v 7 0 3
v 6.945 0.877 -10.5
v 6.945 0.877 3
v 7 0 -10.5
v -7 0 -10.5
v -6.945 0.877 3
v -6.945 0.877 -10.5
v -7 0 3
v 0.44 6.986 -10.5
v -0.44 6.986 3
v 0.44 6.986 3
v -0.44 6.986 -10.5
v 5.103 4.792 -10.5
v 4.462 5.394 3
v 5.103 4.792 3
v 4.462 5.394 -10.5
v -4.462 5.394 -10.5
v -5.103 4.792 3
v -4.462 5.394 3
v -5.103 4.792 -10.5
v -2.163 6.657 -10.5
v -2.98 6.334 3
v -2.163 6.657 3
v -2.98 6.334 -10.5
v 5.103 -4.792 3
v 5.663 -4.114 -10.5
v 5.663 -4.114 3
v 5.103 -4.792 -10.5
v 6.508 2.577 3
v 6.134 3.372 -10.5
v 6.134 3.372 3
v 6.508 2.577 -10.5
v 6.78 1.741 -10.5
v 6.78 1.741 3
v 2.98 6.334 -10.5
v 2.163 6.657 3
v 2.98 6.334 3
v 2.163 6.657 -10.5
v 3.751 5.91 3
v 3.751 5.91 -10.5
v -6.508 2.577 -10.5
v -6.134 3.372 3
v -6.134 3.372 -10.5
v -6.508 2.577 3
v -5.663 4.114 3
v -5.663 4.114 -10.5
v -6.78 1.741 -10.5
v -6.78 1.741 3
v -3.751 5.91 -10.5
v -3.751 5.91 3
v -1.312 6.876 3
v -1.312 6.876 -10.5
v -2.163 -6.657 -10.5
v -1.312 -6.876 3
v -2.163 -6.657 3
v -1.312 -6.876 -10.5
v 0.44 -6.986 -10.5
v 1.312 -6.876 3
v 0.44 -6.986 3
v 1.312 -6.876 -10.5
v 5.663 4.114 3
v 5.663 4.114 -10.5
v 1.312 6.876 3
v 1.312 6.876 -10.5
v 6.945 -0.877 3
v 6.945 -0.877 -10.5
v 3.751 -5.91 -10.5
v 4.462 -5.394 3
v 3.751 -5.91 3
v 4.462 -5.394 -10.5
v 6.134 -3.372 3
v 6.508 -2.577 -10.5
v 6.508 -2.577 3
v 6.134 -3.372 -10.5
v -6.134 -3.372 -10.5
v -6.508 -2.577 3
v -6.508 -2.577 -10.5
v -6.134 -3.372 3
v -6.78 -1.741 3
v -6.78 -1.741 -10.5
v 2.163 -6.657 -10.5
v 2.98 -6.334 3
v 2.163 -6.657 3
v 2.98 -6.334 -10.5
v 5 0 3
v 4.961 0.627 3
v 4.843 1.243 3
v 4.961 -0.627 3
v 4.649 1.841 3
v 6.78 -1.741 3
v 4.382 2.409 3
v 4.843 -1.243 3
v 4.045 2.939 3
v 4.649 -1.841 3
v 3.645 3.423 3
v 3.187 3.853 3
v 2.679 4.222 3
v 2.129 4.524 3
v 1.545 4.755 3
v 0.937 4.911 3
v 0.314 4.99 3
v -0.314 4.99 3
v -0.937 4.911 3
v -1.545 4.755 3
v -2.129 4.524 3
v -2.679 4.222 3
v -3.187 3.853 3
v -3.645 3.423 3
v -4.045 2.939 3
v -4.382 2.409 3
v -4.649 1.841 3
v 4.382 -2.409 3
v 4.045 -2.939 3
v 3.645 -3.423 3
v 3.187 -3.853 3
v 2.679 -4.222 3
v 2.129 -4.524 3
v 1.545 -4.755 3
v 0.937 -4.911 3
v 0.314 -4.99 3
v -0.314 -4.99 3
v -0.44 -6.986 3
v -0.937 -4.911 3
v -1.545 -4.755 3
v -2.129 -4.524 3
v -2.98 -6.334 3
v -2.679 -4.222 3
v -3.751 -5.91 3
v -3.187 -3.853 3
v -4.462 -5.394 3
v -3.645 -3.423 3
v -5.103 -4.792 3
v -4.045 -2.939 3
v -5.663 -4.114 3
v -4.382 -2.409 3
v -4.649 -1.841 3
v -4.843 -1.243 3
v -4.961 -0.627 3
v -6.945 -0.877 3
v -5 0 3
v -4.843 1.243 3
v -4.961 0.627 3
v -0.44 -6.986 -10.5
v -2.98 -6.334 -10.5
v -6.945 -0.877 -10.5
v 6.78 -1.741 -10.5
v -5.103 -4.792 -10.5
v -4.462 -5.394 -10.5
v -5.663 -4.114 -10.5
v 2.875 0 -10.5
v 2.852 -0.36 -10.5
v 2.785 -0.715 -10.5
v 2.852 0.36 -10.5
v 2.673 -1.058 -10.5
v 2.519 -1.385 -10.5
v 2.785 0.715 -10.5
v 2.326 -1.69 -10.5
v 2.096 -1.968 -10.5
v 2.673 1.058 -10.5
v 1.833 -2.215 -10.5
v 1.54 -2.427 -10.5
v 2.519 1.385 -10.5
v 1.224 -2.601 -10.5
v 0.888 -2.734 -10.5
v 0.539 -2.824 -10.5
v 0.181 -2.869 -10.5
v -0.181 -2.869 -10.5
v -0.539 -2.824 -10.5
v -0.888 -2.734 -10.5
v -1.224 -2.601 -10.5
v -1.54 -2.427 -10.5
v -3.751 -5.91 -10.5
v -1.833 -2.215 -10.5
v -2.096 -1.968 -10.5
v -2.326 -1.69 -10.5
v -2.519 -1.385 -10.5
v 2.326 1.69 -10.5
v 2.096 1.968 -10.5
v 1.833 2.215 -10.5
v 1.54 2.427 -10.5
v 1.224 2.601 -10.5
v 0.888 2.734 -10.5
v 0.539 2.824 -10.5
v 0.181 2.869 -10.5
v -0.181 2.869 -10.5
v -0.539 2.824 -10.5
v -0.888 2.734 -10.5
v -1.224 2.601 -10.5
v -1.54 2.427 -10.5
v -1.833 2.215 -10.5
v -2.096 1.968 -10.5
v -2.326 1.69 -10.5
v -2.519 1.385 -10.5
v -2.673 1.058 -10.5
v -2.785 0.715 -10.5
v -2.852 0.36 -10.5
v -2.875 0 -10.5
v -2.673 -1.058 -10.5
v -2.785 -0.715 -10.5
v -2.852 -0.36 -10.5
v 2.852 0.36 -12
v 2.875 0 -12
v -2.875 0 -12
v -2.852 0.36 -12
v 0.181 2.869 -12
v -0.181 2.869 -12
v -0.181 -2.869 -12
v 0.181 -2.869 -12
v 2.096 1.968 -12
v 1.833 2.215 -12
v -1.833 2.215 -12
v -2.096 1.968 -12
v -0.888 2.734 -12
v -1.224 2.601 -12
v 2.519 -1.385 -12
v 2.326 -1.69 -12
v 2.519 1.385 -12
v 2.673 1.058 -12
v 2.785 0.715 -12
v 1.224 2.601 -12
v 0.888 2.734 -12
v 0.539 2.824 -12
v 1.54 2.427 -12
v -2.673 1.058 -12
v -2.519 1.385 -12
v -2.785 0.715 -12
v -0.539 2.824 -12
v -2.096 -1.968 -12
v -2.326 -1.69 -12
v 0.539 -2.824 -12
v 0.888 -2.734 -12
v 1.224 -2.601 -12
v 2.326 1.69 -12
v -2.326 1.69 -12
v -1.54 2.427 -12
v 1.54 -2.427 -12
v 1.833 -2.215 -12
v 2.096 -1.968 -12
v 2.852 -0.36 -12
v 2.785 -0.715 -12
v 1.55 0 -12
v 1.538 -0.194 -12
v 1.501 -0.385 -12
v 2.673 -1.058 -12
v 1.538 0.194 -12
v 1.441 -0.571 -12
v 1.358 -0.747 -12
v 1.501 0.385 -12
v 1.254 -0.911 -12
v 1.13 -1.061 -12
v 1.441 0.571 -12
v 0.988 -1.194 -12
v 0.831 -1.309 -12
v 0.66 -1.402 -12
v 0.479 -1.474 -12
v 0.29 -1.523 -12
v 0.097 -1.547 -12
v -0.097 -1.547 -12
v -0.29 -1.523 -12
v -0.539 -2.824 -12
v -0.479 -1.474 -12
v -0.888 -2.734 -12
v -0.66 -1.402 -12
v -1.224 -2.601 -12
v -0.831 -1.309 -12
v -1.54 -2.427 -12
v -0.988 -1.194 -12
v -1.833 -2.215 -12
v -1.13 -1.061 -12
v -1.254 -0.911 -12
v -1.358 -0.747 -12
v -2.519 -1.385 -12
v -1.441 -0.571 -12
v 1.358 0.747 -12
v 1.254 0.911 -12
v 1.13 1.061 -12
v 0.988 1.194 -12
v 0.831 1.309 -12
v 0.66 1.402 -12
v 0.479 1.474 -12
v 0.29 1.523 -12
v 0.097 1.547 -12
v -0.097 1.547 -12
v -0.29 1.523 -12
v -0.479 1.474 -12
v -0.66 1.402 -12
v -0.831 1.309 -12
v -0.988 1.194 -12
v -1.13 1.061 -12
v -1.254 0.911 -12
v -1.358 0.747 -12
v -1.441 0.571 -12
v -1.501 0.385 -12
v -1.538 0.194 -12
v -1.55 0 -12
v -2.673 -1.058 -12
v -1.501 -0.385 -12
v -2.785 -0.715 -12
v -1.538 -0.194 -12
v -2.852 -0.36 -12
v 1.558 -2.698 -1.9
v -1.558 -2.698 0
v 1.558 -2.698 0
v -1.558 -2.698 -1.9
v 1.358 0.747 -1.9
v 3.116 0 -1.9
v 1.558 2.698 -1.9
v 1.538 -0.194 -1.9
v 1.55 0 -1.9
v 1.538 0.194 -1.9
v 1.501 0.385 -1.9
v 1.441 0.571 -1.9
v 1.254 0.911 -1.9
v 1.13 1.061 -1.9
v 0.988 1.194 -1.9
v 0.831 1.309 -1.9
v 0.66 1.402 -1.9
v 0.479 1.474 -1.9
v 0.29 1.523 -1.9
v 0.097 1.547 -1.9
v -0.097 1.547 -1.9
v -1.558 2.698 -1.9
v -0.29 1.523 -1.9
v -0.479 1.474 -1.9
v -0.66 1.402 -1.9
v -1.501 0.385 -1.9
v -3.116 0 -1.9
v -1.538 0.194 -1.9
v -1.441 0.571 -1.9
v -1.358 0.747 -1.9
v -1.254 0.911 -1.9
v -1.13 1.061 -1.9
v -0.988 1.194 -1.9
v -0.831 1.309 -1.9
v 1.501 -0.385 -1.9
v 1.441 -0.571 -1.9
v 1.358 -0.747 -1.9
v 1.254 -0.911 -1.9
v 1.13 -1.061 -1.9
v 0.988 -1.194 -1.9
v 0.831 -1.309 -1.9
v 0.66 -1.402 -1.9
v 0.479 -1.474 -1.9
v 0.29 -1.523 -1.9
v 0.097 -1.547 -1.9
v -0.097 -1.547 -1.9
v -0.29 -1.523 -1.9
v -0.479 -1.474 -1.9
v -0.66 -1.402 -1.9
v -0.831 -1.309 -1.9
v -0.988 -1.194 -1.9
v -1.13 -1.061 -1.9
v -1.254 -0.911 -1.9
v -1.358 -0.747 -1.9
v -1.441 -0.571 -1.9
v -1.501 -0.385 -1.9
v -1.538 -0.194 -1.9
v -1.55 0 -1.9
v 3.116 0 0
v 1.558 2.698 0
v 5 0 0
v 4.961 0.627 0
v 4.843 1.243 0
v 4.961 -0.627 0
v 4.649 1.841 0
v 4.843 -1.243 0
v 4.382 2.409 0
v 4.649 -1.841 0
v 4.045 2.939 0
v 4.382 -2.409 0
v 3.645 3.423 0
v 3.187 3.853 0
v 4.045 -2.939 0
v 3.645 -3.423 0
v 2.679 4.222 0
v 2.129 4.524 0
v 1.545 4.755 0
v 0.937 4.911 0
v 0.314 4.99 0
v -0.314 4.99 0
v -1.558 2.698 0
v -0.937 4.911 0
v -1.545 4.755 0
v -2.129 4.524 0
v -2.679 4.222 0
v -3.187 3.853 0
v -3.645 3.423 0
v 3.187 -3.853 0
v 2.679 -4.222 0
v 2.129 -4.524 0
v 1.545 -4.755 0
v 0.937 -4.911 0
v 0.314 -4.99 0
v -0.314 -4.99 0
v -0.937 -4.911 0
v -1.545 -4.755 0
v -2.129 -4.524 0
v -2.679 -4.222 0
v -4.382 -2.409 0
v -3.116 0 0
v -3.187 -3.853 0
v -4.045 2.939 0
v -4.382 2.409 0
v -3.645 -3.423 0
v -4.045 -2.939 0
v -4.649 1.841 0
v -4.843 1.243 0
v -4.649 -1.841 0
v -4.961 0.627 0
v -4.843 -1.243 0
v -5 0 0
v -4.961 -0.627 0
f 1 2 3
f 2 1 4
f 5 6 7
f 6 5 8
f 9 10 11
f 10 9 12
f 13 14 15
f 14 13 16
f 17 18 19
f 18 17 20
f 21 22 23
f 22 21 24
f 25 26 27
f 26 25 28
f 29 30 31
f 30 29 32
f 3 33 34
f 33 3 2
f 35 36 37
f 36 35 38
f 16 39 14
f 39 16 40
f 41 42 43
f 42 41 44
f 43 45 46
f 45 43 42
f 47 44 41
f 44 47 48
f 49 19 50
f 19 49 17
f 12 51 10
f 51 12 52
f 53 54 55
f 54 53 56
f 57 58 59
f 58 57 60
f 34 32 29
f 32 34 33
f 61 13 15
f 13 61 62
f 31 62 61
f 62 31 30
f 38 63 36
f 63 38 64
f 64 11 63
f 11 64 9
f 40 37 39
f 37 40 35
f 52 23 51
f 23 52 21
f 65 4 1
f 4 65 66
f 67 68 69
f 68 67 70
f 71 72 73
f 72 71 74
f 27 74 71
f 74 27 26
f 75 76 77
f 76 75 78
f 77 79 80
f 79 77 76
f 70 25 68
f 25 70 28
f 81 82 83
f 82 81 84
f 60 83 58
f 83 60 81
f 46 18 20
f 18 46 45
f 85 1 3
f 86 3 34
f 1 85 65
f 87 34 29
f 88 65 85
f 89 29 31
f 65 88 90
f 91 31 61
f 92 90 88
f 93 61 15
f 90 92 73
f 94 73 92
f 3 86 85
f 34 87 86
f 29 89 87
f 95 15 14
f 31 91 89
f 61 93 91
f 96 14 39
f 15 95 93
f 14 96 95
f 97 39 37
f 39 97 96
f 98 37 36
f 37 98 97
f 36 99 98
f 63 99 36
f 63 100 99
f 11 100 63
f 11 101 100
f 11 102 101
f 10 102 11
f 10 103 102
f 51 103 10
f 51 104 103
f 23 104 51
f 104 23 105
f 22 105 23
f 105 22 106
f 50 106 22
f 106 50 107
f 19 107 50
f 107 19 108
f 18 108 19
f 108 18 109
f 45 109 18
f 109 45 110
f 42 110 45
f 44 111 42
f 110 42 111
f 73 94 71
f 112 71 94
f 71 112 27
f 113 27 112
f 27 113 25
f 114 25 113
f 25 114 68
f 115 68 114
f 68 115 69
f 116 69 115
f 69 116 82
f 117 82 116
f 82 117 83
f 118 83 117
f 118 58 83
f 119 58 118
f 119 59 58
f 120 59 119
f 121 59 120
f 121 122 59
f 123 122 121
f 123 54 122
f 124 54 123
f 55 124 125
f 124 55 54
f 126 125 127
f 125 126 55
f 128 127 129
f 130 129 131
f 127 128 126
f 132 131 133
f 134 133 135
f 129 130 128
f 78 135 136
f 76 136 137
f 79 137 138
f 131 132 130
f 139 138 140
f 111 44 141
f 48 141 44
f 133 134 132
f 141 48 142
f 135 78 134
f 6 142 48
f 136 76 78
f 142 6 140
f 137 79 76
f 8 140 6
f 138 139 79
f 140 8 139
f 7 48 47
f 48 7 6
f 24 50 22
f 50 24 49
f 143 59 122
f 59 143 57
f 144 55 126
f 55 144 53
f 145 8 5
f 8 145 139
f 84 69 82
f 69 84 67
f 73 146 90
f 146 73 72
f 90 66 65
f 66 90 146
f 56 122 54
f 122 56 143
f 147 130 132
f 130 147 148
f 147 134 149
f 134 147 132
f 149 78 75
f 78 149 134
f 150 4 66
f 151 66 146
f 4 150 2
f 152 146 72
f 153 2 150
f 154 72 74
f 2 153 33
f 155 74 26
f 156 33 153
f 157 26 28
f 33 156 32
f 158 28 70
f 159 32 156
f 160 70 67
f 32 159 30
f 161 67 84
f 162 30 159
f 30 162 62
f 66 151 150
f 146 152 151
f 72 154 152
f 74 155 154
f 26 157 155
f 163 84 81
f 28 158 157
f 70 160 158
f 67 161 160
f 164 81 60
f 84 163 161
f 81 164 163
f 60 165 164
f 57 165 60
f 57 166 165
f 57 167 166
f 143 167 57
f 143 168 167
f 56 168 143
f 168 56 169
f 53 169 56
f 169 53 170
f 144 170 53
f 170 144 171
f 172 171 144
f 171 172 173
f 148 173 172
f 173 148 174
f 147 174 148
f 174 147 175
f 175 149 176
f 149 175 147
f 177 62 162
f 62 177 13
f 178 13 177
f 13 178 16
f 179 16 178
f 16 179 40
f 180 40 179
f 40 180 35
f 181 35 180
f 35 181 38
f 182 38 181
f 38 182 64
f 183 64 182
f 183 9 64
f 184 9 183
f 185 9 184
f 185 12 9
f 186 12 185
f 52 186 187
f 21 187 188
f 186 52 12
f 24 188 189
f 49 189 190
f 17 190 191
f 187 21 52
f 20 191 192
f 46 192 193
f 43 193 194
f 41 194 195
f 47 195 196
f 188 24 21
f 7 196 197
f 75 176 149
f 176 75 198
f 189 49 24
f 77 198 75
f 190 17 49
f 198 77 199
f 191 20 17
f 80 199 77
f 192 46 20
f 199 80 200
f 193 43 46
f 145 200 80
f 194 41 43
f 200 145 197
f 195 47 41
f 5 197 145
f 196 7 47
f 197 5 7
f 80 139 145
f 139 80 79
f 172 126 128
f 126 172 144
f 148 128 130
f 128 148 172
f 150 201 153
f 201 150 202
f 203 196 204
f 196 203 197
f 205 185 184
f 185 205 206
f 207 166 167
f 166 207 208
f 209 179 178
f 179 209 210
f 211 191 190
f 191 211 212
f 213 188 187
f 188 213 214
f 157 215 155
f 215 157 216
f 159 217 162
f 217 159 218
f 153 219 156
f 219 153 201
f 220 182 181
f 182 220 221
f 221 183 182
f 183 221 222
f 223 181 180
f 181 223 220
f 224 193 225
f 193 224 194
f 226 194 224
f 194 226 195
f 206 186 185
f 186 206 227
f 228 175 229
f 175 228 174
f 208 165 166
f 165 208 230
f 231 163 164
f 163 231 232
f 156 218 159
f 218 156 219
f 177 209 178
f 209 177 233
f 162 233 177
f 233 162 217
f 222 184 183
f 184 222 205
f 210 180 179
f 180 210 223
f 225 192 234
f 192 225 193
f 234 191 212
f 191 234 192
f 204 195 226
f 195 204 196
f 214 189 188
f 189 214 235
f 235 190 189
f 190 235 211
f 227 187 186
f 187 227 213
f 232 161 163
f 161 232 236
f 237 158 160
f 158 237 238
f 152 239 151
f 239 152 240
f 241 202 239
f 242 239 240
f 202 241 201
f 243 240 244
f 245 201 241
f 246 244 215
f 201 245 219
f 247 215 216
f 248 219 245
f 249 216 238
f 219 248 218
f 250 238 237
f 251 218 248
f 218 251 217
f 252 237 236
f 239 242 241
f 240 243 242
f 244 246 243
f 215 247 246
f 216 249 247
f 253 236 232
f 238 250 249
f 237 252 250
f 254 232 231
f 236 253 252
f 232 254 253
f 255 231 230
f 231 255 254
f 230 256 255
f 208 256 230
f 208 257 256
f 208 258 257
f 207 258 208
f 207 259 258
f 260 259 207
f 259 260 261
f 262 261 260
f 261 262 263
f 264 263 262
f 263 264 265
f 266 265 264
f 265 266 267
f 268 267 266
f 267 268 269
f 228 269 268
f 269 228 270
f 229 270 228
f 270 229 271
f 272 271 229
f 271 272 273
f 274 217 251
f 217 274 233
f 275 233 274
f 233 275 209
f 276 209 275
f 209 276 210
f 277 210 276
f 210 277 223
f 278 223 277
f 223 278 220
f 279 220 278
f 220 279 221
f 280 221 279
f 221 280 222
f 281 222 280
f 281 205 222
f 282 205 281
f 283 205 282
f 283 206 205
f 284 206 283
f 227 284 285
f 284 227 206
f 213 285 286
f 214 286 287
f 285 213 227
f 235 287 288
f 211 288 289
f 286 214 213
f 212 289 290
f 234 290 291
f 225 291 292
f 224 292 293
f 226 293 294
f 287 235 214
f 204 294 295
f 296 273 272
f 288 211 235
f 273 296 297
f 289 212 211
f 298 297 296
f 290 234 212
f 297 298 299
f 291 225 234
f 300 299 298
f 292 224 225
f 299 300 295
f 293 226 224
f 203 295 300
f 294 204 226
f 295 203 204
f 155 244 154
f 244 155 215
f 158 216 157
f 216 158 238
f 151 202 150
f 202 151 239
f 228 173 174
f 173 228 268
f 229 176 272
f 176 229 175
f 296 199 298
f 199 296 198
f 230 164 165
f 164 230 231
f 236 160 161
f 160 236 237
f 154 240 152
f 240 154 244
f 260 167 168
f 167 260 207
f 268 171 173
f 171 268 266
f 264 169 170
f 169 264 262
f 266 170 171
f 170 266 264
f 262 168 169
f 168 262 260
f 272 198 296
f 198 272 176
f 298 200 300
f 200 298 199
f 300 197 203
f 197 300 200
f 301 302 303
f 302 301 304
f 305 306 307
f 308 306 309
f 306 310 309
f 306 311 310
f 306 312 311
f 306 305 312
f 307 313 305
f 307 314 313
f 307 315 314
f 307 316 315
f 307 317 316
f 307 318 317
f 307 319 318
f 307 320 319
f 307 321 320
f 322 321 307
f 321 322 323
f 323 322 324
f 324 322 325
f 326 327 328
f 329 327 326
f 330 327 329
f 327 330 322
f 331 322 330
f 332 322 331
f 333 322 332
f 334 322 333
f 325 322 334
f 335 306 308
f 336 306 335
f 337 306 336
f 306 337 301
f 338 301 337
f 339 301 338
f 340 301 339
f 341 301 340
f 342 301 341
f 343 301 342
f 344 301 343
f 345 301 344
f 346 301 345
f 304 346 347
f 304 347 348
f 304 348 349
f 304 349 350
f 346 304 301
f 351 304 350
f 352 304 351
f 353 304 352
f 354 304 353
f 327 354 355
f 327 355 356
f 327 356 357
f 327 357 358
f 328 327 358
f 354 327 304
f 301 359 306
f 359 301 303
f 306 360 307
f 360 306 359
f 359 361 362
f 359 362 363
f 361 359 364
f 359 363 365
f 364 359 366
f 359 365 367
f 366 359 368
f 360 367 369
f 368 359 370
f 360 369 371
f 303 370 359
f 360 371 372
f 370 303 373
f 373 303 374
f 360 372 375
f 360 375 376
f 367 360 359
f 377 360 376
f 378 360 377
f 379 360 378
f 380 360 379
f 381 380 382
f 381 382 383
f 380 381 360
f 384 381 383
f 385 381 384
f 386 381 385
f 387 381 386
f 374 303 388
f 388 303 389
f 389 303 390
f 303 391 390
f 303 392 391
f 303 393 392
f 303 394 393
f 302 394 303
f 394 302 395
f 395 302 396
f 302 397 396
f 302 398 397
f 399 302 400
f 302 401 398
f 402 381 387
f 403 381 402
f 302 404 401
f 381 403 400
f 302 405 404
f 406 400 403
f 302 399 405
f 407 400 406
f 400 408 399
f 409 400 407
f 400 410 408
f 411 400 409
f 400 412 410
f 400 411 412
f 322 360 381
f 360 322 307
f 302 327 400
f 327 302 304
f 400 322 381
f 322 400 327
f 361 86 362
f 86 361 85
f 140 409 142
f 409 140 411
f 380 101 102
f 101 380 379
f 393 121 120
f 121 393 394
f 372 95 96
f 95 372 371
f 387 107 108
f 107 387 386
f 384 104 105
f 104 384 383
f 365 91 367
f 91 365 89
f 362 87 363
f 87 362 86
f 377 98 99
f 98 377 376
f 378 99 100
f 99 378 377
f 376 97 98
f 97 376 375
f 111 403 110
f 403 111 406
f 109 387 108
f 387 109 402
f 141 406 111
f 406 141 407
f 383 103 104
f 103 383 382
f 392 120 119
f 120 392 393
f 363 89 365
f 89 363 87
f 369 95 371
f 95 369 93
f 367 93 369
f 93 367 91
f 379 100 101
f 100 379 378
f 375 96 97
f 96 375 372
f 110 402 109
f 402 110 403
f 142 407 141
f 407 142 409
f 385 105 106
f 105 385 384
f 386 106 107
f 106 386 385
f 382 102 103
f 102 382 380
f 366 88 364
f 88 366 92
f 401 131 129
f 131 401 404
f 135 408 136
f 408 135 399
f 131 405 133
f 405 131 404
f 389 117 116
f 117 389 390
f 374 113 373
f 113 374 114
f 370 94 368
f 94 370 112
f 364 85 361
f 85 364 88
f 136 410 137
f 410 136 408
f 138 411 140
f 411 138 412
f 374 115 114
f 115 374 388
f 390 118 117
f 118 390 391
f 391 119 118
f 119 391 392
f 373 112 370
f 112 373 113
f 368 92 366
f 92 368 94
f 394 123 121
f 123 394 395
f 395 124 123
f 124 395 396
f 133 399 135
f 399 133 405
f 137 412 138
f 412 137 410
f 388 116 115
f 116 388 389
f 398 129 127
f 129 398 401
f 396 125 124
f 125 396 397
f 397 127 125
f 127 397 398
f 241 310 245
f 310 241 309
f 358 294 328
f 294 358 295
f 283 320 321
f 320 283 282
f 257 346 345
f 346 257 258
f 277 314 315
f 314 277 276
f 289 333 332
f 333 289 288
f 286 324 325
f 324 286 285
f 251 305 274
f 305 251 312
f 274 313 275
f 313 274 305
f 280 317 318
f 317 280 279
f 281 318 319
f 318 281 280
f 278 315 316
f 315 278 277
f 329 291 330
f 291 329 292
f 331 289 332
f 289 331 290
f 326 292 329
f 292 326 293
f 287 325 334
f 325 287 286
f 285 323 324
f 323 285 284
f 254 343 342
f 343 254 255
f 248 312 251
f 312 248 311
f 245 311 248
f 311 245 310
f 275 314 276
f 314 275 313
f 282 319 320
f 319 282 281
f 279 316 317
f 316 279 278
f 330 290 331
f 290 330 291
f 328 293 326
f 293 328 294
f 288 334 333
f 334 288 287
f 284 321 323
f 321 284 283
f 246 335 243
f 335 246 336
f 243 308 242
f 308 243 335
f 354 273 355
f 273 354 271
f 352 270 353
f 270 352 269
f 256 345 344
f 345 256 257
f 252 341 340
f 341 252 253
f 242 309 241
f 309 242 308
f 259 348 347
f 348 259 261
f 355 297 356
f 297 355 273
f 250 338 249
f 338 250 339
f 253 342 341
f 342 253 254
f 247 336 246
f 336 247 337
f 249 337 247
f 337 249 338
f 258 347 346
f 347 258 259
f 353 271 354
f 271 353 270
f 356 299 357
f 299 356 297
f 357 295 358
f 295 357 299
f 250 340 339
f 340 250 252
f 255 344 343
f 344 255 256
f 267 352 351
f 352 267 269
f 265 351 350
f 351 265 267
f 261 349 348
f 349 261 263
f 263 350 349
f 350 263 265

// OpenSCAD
$fn = 50;


difference() {
	union() {
		translate(v = [0, 0, -10.5000000000]) {
			cylinder(h = 13.5000000000, r = 7.0000000000);
		}
		#translate(v = [0, 0, -12.0000000000]) {
			cylinder(h = 12, r = 2.8750000000);
		}
	}
	union() {
		translate(v = [0, 0, 0]) {
			rotate(a = [0, 0, 0]) {
				difference() {
					union() {
						translate(v = [0, 0, -1.9000000000]) {
							linear_extrude(height = 1.9000000000) {
								polygon(points = [[3.1158000000, 0.0000000000], [1.5579000000, 2.6983619531], [-1.5579000000, 2.6983619531], [-3.1158000000, 0.0000000000], [-1.5579000000, -2.6983619531], [1.5579000000, -2.6983619531]]);
							}
						}
					}
					union();
				}
			}
		}
		#cylinder(h = 3, r = 5.0000000000);
		#translate(v = [0, 0, -100.0000000000]) {
			cylinder(h = 200, r = 1.5500000000);
		}
	}
}
